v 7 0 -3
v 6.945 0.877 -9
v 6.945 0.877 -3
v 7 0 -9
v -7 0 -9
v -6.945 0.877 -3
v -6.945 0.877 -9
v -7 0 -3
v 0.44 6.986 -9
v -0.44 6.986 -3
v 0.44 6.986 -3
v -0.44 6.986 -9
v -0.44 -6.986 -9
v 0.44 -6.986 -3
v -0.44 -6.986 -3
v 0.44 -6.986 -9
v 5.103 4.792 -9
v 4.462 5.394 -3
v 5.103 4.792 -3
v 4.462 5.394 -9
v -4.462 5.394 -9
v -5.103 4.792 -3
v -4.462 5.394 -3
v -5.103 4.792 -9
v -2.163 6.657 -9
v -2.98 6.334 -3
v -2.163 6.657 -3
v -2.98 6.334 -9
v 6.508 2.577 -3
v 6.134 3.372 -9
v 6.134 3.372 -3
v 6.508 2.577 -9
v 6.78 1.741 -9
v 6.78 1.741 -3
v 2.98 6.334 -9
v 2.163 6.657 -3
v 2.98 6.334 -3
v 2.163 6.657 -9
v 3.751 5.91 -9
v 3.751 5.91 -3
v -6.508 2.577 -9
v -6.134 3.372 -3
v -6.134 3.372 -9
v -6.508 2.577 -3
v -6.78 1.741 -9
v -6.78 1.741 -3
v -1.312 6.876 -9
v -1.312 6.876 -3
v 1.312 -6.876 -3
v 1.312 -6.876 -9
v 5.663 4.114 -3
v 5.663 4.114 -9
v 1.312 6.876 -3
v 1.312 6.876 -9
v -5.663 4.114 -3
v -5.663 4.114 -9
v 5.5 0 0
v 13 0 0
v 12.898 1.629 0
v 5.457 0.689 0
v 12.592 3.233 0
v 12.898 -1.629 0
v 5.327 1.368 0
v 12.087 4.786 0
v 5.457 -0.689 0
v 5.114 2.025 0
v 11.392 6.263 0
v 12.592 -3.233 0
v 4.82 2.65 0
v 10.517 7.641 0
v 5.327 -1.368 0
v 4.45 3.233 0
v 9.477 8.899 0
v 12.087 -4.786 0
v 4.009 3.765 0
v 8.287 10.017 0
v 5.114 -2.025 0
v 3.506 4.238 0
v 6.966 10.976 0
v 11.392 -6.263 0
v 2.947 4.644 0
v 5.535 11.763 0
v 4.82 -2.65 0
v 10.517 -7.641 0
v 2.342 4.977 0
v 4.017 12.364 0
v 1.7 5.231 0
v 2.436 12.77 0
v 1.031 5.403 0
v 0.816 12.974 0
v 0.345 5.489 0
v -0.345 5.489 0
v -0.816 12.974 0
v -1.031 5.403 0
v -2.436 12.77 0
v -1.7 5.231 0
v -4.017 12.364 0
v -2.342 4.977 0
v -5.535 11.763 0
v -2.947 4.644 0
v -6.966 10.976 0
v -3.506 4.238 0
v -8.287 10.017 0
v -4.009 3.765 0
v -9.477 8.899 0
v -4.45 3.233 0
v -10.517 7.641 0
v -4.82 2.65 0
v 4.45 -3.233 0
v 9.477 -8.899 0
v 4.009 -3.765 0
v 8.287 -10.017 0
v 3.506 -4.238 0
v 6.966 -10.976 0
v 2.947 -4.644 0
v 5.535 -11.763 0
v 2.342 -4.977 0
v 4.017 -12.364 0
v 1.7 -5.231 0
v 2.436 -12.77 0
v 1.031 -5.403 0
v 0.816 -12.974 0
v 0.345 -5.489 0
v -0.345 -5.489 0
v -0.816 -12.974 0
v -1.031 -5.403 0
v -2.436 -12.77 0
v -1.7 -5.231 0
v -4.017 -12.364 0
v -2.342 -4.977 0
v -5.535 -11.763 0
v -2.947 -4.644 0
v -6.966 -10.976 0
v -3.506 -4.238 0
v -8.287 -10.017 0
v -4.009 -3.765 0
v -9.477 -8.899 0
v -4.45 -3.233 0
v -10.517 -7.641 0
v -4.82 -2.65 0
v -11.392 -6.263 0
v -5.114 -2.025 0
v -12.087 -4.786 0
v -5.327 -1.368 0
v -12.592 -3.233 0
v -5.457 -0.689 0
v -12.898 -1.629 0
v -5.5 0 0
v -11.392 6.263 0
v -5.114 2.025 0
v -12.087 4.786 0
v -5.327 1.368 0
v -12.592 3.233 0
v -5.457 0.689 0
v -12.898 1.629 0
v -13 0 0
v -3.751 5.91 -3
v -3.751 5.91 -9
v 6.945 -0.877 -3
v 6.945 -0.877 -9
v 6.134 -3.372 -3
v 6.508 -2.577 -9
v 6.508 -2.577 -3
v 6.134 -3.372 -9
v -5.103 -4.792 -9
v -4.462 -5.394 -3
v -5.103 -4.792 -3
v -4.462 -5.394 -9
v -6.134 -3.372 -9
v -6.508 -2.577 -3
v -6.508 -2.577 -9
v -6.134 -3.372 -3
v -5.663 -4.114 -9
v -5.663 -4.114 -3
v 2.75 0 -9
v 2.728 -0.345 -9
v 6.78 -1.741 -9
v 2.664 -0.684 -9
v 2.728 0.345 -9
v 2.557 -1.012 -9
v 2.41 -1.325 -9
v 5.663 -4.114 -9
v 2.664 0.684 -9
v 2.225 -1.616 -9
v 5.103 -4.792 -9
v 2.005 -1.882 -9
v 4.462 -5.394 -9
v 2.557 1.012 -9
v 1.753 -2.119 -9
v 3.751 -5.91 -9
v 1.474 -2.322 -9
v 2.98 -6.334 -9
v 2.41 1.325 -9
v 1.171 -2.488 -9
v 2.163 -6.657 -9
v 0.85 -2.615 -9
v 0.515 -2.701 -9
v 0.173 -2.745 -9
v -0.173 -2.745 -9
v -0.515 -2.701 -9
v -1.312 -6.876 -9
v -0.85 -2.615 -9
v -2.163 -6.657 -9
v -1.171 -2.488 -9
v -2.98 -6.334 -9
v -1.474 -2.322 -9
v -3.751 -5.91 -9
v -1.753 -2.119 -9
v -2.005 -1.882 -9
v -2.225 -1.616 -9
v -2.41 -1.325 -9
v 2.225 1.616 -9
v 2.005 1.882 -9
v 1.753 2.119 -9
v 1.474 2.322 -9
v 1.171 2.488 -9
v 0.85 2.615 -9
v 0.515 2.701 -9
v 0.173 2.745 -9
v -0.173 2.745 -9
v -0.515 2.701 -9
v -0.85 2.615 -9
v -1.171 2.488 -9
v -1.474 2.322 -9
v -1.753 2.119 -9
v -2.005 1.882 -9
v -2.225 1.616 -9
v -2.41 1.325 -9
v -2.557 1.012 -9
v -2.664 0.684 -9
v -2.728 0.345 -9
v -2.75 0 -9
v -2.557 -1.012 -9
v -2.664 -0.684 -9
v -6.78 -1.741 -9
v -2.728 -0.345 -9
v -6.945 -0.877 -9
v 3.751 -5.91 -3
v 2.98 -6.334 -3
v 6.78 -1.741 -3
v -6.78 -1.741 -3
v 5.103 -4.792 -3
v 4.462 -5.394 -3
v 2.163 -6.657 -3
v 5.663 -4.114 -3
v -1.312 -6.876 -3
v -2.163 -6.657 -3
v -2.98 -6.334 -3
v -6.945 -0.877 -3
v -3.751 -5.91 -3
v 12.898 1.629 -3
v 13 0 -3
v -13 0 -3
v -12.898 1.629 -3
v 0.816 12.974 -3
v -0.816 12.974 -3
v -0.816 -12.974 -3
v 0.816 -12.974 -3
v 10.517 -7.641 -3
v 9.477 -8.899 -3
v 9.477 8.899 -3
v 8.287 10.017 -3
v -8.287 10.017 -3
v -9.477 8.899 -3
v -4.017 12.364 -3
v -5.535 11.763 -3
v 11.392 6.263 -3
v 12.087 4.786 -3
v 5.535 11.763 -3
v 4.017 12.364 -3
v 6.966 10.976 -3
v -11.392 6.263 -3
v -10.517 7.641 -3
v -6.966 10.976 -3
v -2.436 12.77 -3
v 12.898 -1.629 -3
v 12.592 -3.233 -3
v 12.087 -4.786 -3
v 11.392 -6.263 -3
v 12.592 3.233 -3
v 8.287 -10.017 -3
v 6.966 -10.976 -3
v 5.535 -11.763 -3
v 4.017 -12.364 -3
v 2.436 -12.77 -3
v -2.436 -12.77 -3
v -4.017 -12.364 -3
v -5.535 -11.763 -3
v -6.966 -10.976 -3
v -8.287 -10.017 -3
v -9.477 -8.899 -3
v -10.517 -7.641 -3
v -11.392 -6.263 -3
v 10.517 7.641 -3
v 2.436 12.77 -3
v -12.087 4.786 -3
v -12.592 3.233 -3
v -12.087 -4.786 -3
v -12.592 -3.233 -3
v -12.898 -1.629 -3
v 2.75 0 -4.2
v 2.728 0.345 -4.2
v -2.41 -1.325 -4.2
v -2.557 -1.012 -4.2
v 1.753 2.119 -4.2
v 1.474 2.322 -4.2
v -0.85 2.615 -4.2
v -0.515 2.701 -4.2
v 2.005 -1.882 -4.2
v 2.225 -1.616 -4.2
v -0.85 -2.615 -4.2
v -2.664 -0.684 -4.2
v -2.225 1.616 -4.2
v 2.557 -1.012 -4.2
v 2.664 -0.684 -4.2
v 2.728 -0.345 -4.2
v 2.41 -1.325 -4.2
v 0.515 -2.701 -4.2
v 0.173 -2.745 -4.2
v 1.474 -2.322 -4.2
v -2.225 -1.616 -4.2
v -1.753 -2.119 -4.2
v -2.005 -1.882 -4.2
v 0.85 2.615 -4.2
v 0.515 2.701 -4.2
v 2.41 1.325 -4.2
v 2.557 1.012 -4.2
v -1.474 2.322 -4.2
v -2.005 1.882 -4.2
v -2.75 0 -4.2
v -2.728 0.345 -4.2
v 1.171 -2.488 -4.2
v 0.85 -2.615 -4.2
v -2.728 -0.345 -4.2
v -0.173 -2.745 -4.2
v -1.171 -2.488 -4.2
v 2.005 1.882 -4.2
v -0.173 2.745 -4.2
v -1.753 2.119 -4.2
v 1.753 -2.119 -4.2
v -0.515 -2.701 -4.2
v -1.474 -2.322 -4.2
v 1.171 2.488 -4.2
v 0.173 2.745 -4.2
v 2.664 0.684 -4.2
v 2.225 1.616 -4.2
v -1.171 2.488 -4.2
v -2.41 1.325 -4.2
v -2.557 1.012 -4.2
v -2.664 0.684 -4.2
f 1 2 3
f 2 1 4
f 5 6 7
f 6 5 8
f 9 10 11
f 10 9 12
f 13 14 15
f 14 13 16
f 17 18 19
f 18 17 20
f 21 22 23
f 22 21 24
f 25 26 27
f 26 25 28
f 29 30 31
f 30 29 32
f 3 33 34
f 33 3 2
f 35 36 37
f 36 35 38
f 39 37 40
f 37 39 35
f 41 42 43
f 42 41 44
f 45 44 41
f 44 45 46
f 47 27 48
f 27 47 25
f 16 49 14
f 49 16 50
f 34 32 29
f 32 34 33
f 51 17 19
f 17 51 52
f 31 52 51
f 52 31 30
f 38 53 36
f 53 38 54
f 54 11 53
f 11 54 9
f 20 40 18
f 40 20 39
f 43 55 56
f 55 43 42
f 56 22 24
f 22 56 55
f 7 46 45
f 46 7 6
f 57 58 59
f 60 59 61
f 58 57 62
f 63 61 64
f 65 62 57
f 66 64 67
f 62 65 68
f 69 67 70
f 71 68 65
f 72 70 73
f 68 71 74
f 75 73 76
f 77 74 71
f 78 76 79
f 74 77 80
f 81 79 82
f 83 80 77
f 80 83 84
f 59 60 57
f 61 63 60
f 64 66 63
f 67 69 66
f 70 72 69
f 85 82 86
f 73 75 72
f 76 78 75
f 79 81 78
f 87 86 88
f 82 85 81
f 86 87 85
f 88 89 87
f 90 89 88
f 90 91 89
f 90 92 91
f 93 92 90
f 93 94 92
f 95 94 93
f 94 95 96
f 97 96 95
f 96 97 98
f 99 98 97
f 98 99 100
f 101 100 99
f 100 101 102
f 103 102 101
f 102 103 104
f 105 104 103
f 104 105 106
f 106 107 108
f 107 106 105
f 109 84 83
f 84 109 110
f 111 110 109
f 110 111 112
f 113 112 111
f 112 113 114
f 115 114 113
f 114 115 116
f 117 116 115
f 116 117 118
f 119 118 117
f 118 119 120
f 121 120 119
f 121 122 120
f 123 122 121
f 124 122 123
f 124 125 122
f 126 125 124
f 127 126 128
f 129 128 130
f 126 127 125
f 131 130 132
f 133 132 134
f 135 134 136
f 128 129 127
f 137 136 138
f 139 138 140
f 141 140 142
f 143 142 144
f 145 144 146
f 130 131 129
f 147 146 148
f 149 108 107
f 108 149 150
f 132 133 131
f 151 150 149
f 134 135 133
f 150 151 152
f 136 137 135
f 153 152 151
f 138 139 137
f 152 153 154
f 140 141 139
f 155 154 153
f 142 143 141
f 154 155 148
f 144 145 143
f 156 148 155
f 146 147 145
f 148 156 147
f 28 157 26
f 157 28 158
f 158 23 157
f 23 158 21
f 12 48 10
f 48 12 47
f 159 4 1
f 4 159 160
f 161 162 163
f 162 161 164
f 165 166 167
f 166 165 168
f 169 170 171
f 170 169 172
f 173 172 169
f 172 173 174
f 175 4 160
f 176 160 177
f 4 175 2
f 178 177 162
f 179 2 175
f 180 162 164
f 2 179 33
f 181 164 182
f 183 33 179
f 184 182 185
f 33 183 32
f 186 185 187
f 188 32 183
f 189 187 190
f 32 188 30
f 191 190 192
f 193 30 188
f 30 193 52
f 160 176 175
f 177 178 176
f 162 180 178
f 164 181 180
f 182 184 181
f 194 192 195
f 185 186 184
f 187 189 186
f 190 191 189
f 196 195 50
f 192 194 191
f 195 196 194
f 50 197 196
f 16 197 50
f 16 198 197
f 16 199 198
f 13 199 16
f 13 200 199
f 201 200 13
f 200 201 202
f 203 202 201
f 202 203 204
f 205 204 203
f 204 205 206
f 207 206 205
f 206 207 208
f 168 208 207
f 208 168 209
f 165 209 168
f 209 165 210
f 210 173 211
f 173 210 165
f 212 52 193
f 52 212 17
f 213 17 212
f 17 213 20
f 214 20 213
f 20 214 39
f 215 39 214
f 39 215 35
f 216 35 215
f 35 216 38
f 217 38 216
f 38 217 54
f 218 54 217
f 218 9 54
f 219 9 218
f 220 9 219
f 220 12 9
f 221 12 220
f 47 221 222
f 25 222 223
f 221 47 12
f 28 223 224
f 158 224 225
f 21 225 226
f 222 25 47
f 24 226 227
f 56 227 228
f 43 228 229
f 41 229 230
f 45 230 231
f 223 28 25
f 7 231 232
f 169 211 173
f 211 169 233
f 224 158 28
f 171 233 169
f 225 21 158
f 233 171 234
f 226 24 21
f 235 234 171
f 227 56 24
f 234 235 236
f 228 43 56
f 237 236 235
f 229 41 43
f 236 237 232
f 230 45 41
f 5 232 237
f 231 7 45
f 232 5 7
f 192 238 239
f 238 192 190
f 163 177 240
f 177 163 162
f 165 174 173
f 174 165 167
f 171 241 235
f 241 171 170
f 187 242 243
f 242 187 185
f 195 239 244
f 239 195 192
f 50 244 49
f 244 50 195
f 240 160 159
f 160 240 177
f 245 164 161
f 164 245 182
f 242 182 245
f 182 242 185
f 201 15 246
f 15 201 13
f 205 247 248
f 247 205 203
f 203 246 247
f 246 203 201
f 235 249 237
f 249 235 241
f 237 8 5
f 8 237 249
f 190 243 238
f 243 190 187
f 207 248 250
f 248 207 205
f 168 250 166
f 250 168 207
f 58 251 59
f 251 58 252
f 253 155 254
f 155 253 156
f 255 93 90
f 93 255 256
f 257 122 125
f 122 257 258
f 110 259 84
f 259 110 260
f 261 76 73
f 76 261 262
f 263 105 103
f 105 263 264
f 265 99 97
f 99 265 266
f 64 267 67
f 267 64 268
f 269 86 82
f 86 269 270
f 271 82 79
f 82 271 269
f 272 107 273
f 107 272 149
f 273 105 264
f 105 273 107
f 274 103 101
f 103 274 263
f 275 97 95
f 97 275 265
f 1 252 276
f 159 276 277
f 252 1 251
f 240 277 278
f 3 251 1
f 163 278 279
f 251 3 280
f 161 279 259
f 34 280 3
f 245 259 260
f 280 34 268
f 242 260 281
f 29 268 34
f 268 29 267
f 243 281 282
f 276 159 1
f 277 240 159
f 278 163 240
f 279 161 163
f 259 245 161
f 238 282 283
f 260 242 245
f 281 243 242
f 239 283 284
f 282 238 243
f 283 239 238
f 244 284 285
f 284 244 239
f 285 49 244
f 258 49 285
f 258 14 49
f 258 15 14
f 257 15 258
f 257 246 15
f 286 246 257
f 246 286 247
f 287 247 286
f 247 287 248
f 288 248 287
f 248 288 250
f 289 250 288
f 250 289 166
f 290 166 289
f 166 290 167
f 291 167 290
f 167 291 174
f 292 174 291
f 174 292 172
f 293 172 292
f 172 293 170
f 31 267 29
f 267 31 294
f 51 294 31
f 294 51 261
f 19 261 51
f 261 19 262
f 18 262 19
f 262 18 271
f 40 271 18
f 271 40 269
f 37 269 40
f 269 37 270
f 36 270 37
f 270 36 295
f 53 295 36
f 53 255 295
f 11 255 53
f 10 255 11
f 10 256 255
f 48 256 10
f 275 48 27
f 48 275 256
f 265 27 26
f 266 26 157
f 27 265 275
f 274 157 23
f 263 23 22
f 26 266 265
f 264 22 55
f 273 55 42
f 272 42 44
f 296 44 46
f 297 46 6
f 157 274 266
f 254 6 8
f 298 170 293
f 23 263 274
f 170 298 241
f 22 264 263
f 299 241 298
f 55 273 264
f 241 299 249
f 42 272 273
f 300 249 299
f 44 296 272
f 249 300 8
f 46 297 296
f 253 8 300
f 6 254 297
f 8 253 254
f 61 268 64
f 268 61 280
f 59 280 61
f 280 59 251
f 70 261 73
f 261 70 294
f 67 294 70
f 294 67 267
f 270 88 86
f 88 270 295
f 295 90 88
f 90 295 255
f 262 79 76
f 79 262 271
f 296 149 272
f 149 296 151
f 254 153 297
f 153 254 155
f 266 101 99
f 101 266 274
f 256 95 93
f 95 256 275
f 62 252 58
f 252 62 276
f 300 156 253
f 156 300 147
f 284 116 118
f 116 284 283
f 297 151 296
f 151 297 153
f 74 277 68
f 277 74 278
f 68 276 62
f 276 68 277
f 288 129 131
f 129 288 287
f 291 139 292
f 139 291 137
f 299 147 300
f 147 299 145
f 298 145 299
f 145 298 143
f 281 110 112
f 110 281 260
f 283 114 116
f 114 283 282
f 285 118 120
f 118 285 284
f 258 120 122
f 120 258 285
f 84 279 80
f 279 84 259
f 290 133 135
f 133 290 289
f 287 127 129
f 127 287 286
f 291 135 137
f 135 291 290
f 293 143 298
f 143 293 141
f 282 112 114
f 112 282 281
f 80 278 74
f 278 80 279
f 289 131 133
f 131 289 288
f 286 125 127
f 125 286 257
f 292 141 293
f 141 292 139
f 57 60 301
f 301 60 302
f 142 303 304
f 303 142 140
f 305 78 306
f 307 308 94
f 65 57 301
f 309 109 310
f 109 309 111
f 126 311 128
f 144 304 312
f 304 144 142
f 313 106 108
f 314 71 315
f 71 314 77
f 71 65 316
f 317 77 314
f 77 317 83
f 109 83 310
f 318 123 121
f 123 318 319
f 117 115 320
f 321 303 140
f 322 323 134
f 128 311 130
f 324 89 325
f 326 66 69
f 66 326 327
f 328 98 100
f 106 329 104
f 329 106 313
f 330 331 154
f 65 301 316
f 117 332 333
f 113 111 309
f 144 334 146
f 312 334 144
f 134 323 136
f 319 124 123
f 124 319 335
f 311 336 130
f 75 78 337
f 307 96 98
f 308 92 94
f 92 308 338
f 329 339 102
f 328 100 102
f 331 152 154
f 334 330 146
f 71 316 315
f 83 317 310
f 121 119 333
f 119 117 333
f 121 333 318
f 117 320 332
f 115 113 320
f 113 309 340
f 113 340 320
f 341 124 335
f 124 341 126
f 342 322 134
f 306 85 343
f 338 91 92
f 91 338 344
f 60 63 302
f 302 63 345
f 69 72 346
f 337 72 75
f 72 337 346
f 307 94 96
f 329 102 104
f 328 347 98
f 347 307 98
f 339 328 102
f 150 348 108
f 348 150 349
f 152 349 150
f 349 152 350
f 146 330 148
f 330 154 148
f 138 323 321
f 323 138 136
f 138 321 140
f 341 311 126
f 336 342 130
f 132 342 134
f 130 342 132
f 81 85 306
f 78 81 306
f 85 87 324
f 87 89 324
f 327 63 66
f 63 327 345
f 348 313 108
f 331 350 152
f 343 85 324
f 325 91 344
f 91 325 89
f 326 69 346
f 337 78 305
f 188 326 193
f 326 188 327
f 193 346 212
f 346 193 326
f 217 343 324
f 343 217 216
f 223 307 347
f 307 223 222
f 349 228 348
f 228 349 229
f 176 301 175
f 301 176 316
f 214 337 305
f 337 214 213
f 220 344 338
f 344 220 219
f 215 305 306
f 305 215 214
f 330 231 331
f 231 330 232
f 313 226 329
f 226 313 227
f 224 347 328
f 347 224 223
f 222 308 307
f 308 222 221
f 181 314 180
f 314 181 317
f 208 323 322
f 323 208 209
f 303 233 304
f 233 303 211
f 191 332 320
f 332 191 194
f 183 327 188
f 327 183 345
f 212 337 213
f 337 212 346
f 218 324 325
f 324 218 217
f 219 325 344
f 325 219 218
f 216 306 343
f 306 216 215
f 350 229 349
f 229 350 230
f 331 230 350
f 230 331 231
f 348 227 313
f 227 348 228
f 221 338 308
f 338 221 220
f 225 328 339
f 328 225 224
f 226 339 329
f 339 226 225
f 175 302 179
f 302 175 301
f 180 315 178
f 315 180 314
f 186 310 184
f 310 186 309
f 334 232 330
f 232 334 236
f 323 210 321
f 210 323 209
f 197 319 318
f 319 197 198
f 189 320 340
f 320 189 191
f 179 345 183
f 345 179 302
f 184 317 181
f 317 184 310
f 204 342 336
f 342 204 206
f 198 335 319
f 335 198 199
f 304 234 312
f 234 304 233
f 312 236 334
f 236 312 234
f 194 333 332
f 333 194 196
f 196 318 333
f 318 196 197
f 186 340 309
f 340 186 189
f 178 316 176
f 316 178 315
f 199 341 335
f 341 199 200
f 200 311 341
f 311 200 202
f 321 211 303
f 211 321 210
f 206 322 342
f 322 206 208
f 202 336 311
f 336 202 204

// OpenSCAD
$fn = 50;


difference() {
	union() {
		translate(v = [0, 0, -9.0000000000]) {
			cylinder(h = 9, r = 7.0000000000);
		}
		translate(v = [0, 0, -3.0000000000]) {
			cylinder(h = 3, r = 13.0000000000);
		}
	}
	union() {
		translate(v = [0, 0, 0]) {
			rotate(a = [0, 0, 0]) {
				difference() {
					union() {
						#translate(v = [0, 0, -9.0000000000]) {
							cylinder(h = 9, r = 2.2500000000);
						}
						#translate(v = [0, 0, -4.2000000000]) {
							cylinder(h = 4.2000000000, r1 = 2.7500000000, r2 = 5.5000000000);
						}
						#translate(v = [0, 0, -9.0000000000]) {
							cylinder(h = 9, r = 2.7500000000);
						}
						#translate(v = [0, 0, -9.0000000000]) {
							cylinder(h = 9, r = 2.2500000000);
						}
					}
					union();
				}
			}
		}
	}
}
